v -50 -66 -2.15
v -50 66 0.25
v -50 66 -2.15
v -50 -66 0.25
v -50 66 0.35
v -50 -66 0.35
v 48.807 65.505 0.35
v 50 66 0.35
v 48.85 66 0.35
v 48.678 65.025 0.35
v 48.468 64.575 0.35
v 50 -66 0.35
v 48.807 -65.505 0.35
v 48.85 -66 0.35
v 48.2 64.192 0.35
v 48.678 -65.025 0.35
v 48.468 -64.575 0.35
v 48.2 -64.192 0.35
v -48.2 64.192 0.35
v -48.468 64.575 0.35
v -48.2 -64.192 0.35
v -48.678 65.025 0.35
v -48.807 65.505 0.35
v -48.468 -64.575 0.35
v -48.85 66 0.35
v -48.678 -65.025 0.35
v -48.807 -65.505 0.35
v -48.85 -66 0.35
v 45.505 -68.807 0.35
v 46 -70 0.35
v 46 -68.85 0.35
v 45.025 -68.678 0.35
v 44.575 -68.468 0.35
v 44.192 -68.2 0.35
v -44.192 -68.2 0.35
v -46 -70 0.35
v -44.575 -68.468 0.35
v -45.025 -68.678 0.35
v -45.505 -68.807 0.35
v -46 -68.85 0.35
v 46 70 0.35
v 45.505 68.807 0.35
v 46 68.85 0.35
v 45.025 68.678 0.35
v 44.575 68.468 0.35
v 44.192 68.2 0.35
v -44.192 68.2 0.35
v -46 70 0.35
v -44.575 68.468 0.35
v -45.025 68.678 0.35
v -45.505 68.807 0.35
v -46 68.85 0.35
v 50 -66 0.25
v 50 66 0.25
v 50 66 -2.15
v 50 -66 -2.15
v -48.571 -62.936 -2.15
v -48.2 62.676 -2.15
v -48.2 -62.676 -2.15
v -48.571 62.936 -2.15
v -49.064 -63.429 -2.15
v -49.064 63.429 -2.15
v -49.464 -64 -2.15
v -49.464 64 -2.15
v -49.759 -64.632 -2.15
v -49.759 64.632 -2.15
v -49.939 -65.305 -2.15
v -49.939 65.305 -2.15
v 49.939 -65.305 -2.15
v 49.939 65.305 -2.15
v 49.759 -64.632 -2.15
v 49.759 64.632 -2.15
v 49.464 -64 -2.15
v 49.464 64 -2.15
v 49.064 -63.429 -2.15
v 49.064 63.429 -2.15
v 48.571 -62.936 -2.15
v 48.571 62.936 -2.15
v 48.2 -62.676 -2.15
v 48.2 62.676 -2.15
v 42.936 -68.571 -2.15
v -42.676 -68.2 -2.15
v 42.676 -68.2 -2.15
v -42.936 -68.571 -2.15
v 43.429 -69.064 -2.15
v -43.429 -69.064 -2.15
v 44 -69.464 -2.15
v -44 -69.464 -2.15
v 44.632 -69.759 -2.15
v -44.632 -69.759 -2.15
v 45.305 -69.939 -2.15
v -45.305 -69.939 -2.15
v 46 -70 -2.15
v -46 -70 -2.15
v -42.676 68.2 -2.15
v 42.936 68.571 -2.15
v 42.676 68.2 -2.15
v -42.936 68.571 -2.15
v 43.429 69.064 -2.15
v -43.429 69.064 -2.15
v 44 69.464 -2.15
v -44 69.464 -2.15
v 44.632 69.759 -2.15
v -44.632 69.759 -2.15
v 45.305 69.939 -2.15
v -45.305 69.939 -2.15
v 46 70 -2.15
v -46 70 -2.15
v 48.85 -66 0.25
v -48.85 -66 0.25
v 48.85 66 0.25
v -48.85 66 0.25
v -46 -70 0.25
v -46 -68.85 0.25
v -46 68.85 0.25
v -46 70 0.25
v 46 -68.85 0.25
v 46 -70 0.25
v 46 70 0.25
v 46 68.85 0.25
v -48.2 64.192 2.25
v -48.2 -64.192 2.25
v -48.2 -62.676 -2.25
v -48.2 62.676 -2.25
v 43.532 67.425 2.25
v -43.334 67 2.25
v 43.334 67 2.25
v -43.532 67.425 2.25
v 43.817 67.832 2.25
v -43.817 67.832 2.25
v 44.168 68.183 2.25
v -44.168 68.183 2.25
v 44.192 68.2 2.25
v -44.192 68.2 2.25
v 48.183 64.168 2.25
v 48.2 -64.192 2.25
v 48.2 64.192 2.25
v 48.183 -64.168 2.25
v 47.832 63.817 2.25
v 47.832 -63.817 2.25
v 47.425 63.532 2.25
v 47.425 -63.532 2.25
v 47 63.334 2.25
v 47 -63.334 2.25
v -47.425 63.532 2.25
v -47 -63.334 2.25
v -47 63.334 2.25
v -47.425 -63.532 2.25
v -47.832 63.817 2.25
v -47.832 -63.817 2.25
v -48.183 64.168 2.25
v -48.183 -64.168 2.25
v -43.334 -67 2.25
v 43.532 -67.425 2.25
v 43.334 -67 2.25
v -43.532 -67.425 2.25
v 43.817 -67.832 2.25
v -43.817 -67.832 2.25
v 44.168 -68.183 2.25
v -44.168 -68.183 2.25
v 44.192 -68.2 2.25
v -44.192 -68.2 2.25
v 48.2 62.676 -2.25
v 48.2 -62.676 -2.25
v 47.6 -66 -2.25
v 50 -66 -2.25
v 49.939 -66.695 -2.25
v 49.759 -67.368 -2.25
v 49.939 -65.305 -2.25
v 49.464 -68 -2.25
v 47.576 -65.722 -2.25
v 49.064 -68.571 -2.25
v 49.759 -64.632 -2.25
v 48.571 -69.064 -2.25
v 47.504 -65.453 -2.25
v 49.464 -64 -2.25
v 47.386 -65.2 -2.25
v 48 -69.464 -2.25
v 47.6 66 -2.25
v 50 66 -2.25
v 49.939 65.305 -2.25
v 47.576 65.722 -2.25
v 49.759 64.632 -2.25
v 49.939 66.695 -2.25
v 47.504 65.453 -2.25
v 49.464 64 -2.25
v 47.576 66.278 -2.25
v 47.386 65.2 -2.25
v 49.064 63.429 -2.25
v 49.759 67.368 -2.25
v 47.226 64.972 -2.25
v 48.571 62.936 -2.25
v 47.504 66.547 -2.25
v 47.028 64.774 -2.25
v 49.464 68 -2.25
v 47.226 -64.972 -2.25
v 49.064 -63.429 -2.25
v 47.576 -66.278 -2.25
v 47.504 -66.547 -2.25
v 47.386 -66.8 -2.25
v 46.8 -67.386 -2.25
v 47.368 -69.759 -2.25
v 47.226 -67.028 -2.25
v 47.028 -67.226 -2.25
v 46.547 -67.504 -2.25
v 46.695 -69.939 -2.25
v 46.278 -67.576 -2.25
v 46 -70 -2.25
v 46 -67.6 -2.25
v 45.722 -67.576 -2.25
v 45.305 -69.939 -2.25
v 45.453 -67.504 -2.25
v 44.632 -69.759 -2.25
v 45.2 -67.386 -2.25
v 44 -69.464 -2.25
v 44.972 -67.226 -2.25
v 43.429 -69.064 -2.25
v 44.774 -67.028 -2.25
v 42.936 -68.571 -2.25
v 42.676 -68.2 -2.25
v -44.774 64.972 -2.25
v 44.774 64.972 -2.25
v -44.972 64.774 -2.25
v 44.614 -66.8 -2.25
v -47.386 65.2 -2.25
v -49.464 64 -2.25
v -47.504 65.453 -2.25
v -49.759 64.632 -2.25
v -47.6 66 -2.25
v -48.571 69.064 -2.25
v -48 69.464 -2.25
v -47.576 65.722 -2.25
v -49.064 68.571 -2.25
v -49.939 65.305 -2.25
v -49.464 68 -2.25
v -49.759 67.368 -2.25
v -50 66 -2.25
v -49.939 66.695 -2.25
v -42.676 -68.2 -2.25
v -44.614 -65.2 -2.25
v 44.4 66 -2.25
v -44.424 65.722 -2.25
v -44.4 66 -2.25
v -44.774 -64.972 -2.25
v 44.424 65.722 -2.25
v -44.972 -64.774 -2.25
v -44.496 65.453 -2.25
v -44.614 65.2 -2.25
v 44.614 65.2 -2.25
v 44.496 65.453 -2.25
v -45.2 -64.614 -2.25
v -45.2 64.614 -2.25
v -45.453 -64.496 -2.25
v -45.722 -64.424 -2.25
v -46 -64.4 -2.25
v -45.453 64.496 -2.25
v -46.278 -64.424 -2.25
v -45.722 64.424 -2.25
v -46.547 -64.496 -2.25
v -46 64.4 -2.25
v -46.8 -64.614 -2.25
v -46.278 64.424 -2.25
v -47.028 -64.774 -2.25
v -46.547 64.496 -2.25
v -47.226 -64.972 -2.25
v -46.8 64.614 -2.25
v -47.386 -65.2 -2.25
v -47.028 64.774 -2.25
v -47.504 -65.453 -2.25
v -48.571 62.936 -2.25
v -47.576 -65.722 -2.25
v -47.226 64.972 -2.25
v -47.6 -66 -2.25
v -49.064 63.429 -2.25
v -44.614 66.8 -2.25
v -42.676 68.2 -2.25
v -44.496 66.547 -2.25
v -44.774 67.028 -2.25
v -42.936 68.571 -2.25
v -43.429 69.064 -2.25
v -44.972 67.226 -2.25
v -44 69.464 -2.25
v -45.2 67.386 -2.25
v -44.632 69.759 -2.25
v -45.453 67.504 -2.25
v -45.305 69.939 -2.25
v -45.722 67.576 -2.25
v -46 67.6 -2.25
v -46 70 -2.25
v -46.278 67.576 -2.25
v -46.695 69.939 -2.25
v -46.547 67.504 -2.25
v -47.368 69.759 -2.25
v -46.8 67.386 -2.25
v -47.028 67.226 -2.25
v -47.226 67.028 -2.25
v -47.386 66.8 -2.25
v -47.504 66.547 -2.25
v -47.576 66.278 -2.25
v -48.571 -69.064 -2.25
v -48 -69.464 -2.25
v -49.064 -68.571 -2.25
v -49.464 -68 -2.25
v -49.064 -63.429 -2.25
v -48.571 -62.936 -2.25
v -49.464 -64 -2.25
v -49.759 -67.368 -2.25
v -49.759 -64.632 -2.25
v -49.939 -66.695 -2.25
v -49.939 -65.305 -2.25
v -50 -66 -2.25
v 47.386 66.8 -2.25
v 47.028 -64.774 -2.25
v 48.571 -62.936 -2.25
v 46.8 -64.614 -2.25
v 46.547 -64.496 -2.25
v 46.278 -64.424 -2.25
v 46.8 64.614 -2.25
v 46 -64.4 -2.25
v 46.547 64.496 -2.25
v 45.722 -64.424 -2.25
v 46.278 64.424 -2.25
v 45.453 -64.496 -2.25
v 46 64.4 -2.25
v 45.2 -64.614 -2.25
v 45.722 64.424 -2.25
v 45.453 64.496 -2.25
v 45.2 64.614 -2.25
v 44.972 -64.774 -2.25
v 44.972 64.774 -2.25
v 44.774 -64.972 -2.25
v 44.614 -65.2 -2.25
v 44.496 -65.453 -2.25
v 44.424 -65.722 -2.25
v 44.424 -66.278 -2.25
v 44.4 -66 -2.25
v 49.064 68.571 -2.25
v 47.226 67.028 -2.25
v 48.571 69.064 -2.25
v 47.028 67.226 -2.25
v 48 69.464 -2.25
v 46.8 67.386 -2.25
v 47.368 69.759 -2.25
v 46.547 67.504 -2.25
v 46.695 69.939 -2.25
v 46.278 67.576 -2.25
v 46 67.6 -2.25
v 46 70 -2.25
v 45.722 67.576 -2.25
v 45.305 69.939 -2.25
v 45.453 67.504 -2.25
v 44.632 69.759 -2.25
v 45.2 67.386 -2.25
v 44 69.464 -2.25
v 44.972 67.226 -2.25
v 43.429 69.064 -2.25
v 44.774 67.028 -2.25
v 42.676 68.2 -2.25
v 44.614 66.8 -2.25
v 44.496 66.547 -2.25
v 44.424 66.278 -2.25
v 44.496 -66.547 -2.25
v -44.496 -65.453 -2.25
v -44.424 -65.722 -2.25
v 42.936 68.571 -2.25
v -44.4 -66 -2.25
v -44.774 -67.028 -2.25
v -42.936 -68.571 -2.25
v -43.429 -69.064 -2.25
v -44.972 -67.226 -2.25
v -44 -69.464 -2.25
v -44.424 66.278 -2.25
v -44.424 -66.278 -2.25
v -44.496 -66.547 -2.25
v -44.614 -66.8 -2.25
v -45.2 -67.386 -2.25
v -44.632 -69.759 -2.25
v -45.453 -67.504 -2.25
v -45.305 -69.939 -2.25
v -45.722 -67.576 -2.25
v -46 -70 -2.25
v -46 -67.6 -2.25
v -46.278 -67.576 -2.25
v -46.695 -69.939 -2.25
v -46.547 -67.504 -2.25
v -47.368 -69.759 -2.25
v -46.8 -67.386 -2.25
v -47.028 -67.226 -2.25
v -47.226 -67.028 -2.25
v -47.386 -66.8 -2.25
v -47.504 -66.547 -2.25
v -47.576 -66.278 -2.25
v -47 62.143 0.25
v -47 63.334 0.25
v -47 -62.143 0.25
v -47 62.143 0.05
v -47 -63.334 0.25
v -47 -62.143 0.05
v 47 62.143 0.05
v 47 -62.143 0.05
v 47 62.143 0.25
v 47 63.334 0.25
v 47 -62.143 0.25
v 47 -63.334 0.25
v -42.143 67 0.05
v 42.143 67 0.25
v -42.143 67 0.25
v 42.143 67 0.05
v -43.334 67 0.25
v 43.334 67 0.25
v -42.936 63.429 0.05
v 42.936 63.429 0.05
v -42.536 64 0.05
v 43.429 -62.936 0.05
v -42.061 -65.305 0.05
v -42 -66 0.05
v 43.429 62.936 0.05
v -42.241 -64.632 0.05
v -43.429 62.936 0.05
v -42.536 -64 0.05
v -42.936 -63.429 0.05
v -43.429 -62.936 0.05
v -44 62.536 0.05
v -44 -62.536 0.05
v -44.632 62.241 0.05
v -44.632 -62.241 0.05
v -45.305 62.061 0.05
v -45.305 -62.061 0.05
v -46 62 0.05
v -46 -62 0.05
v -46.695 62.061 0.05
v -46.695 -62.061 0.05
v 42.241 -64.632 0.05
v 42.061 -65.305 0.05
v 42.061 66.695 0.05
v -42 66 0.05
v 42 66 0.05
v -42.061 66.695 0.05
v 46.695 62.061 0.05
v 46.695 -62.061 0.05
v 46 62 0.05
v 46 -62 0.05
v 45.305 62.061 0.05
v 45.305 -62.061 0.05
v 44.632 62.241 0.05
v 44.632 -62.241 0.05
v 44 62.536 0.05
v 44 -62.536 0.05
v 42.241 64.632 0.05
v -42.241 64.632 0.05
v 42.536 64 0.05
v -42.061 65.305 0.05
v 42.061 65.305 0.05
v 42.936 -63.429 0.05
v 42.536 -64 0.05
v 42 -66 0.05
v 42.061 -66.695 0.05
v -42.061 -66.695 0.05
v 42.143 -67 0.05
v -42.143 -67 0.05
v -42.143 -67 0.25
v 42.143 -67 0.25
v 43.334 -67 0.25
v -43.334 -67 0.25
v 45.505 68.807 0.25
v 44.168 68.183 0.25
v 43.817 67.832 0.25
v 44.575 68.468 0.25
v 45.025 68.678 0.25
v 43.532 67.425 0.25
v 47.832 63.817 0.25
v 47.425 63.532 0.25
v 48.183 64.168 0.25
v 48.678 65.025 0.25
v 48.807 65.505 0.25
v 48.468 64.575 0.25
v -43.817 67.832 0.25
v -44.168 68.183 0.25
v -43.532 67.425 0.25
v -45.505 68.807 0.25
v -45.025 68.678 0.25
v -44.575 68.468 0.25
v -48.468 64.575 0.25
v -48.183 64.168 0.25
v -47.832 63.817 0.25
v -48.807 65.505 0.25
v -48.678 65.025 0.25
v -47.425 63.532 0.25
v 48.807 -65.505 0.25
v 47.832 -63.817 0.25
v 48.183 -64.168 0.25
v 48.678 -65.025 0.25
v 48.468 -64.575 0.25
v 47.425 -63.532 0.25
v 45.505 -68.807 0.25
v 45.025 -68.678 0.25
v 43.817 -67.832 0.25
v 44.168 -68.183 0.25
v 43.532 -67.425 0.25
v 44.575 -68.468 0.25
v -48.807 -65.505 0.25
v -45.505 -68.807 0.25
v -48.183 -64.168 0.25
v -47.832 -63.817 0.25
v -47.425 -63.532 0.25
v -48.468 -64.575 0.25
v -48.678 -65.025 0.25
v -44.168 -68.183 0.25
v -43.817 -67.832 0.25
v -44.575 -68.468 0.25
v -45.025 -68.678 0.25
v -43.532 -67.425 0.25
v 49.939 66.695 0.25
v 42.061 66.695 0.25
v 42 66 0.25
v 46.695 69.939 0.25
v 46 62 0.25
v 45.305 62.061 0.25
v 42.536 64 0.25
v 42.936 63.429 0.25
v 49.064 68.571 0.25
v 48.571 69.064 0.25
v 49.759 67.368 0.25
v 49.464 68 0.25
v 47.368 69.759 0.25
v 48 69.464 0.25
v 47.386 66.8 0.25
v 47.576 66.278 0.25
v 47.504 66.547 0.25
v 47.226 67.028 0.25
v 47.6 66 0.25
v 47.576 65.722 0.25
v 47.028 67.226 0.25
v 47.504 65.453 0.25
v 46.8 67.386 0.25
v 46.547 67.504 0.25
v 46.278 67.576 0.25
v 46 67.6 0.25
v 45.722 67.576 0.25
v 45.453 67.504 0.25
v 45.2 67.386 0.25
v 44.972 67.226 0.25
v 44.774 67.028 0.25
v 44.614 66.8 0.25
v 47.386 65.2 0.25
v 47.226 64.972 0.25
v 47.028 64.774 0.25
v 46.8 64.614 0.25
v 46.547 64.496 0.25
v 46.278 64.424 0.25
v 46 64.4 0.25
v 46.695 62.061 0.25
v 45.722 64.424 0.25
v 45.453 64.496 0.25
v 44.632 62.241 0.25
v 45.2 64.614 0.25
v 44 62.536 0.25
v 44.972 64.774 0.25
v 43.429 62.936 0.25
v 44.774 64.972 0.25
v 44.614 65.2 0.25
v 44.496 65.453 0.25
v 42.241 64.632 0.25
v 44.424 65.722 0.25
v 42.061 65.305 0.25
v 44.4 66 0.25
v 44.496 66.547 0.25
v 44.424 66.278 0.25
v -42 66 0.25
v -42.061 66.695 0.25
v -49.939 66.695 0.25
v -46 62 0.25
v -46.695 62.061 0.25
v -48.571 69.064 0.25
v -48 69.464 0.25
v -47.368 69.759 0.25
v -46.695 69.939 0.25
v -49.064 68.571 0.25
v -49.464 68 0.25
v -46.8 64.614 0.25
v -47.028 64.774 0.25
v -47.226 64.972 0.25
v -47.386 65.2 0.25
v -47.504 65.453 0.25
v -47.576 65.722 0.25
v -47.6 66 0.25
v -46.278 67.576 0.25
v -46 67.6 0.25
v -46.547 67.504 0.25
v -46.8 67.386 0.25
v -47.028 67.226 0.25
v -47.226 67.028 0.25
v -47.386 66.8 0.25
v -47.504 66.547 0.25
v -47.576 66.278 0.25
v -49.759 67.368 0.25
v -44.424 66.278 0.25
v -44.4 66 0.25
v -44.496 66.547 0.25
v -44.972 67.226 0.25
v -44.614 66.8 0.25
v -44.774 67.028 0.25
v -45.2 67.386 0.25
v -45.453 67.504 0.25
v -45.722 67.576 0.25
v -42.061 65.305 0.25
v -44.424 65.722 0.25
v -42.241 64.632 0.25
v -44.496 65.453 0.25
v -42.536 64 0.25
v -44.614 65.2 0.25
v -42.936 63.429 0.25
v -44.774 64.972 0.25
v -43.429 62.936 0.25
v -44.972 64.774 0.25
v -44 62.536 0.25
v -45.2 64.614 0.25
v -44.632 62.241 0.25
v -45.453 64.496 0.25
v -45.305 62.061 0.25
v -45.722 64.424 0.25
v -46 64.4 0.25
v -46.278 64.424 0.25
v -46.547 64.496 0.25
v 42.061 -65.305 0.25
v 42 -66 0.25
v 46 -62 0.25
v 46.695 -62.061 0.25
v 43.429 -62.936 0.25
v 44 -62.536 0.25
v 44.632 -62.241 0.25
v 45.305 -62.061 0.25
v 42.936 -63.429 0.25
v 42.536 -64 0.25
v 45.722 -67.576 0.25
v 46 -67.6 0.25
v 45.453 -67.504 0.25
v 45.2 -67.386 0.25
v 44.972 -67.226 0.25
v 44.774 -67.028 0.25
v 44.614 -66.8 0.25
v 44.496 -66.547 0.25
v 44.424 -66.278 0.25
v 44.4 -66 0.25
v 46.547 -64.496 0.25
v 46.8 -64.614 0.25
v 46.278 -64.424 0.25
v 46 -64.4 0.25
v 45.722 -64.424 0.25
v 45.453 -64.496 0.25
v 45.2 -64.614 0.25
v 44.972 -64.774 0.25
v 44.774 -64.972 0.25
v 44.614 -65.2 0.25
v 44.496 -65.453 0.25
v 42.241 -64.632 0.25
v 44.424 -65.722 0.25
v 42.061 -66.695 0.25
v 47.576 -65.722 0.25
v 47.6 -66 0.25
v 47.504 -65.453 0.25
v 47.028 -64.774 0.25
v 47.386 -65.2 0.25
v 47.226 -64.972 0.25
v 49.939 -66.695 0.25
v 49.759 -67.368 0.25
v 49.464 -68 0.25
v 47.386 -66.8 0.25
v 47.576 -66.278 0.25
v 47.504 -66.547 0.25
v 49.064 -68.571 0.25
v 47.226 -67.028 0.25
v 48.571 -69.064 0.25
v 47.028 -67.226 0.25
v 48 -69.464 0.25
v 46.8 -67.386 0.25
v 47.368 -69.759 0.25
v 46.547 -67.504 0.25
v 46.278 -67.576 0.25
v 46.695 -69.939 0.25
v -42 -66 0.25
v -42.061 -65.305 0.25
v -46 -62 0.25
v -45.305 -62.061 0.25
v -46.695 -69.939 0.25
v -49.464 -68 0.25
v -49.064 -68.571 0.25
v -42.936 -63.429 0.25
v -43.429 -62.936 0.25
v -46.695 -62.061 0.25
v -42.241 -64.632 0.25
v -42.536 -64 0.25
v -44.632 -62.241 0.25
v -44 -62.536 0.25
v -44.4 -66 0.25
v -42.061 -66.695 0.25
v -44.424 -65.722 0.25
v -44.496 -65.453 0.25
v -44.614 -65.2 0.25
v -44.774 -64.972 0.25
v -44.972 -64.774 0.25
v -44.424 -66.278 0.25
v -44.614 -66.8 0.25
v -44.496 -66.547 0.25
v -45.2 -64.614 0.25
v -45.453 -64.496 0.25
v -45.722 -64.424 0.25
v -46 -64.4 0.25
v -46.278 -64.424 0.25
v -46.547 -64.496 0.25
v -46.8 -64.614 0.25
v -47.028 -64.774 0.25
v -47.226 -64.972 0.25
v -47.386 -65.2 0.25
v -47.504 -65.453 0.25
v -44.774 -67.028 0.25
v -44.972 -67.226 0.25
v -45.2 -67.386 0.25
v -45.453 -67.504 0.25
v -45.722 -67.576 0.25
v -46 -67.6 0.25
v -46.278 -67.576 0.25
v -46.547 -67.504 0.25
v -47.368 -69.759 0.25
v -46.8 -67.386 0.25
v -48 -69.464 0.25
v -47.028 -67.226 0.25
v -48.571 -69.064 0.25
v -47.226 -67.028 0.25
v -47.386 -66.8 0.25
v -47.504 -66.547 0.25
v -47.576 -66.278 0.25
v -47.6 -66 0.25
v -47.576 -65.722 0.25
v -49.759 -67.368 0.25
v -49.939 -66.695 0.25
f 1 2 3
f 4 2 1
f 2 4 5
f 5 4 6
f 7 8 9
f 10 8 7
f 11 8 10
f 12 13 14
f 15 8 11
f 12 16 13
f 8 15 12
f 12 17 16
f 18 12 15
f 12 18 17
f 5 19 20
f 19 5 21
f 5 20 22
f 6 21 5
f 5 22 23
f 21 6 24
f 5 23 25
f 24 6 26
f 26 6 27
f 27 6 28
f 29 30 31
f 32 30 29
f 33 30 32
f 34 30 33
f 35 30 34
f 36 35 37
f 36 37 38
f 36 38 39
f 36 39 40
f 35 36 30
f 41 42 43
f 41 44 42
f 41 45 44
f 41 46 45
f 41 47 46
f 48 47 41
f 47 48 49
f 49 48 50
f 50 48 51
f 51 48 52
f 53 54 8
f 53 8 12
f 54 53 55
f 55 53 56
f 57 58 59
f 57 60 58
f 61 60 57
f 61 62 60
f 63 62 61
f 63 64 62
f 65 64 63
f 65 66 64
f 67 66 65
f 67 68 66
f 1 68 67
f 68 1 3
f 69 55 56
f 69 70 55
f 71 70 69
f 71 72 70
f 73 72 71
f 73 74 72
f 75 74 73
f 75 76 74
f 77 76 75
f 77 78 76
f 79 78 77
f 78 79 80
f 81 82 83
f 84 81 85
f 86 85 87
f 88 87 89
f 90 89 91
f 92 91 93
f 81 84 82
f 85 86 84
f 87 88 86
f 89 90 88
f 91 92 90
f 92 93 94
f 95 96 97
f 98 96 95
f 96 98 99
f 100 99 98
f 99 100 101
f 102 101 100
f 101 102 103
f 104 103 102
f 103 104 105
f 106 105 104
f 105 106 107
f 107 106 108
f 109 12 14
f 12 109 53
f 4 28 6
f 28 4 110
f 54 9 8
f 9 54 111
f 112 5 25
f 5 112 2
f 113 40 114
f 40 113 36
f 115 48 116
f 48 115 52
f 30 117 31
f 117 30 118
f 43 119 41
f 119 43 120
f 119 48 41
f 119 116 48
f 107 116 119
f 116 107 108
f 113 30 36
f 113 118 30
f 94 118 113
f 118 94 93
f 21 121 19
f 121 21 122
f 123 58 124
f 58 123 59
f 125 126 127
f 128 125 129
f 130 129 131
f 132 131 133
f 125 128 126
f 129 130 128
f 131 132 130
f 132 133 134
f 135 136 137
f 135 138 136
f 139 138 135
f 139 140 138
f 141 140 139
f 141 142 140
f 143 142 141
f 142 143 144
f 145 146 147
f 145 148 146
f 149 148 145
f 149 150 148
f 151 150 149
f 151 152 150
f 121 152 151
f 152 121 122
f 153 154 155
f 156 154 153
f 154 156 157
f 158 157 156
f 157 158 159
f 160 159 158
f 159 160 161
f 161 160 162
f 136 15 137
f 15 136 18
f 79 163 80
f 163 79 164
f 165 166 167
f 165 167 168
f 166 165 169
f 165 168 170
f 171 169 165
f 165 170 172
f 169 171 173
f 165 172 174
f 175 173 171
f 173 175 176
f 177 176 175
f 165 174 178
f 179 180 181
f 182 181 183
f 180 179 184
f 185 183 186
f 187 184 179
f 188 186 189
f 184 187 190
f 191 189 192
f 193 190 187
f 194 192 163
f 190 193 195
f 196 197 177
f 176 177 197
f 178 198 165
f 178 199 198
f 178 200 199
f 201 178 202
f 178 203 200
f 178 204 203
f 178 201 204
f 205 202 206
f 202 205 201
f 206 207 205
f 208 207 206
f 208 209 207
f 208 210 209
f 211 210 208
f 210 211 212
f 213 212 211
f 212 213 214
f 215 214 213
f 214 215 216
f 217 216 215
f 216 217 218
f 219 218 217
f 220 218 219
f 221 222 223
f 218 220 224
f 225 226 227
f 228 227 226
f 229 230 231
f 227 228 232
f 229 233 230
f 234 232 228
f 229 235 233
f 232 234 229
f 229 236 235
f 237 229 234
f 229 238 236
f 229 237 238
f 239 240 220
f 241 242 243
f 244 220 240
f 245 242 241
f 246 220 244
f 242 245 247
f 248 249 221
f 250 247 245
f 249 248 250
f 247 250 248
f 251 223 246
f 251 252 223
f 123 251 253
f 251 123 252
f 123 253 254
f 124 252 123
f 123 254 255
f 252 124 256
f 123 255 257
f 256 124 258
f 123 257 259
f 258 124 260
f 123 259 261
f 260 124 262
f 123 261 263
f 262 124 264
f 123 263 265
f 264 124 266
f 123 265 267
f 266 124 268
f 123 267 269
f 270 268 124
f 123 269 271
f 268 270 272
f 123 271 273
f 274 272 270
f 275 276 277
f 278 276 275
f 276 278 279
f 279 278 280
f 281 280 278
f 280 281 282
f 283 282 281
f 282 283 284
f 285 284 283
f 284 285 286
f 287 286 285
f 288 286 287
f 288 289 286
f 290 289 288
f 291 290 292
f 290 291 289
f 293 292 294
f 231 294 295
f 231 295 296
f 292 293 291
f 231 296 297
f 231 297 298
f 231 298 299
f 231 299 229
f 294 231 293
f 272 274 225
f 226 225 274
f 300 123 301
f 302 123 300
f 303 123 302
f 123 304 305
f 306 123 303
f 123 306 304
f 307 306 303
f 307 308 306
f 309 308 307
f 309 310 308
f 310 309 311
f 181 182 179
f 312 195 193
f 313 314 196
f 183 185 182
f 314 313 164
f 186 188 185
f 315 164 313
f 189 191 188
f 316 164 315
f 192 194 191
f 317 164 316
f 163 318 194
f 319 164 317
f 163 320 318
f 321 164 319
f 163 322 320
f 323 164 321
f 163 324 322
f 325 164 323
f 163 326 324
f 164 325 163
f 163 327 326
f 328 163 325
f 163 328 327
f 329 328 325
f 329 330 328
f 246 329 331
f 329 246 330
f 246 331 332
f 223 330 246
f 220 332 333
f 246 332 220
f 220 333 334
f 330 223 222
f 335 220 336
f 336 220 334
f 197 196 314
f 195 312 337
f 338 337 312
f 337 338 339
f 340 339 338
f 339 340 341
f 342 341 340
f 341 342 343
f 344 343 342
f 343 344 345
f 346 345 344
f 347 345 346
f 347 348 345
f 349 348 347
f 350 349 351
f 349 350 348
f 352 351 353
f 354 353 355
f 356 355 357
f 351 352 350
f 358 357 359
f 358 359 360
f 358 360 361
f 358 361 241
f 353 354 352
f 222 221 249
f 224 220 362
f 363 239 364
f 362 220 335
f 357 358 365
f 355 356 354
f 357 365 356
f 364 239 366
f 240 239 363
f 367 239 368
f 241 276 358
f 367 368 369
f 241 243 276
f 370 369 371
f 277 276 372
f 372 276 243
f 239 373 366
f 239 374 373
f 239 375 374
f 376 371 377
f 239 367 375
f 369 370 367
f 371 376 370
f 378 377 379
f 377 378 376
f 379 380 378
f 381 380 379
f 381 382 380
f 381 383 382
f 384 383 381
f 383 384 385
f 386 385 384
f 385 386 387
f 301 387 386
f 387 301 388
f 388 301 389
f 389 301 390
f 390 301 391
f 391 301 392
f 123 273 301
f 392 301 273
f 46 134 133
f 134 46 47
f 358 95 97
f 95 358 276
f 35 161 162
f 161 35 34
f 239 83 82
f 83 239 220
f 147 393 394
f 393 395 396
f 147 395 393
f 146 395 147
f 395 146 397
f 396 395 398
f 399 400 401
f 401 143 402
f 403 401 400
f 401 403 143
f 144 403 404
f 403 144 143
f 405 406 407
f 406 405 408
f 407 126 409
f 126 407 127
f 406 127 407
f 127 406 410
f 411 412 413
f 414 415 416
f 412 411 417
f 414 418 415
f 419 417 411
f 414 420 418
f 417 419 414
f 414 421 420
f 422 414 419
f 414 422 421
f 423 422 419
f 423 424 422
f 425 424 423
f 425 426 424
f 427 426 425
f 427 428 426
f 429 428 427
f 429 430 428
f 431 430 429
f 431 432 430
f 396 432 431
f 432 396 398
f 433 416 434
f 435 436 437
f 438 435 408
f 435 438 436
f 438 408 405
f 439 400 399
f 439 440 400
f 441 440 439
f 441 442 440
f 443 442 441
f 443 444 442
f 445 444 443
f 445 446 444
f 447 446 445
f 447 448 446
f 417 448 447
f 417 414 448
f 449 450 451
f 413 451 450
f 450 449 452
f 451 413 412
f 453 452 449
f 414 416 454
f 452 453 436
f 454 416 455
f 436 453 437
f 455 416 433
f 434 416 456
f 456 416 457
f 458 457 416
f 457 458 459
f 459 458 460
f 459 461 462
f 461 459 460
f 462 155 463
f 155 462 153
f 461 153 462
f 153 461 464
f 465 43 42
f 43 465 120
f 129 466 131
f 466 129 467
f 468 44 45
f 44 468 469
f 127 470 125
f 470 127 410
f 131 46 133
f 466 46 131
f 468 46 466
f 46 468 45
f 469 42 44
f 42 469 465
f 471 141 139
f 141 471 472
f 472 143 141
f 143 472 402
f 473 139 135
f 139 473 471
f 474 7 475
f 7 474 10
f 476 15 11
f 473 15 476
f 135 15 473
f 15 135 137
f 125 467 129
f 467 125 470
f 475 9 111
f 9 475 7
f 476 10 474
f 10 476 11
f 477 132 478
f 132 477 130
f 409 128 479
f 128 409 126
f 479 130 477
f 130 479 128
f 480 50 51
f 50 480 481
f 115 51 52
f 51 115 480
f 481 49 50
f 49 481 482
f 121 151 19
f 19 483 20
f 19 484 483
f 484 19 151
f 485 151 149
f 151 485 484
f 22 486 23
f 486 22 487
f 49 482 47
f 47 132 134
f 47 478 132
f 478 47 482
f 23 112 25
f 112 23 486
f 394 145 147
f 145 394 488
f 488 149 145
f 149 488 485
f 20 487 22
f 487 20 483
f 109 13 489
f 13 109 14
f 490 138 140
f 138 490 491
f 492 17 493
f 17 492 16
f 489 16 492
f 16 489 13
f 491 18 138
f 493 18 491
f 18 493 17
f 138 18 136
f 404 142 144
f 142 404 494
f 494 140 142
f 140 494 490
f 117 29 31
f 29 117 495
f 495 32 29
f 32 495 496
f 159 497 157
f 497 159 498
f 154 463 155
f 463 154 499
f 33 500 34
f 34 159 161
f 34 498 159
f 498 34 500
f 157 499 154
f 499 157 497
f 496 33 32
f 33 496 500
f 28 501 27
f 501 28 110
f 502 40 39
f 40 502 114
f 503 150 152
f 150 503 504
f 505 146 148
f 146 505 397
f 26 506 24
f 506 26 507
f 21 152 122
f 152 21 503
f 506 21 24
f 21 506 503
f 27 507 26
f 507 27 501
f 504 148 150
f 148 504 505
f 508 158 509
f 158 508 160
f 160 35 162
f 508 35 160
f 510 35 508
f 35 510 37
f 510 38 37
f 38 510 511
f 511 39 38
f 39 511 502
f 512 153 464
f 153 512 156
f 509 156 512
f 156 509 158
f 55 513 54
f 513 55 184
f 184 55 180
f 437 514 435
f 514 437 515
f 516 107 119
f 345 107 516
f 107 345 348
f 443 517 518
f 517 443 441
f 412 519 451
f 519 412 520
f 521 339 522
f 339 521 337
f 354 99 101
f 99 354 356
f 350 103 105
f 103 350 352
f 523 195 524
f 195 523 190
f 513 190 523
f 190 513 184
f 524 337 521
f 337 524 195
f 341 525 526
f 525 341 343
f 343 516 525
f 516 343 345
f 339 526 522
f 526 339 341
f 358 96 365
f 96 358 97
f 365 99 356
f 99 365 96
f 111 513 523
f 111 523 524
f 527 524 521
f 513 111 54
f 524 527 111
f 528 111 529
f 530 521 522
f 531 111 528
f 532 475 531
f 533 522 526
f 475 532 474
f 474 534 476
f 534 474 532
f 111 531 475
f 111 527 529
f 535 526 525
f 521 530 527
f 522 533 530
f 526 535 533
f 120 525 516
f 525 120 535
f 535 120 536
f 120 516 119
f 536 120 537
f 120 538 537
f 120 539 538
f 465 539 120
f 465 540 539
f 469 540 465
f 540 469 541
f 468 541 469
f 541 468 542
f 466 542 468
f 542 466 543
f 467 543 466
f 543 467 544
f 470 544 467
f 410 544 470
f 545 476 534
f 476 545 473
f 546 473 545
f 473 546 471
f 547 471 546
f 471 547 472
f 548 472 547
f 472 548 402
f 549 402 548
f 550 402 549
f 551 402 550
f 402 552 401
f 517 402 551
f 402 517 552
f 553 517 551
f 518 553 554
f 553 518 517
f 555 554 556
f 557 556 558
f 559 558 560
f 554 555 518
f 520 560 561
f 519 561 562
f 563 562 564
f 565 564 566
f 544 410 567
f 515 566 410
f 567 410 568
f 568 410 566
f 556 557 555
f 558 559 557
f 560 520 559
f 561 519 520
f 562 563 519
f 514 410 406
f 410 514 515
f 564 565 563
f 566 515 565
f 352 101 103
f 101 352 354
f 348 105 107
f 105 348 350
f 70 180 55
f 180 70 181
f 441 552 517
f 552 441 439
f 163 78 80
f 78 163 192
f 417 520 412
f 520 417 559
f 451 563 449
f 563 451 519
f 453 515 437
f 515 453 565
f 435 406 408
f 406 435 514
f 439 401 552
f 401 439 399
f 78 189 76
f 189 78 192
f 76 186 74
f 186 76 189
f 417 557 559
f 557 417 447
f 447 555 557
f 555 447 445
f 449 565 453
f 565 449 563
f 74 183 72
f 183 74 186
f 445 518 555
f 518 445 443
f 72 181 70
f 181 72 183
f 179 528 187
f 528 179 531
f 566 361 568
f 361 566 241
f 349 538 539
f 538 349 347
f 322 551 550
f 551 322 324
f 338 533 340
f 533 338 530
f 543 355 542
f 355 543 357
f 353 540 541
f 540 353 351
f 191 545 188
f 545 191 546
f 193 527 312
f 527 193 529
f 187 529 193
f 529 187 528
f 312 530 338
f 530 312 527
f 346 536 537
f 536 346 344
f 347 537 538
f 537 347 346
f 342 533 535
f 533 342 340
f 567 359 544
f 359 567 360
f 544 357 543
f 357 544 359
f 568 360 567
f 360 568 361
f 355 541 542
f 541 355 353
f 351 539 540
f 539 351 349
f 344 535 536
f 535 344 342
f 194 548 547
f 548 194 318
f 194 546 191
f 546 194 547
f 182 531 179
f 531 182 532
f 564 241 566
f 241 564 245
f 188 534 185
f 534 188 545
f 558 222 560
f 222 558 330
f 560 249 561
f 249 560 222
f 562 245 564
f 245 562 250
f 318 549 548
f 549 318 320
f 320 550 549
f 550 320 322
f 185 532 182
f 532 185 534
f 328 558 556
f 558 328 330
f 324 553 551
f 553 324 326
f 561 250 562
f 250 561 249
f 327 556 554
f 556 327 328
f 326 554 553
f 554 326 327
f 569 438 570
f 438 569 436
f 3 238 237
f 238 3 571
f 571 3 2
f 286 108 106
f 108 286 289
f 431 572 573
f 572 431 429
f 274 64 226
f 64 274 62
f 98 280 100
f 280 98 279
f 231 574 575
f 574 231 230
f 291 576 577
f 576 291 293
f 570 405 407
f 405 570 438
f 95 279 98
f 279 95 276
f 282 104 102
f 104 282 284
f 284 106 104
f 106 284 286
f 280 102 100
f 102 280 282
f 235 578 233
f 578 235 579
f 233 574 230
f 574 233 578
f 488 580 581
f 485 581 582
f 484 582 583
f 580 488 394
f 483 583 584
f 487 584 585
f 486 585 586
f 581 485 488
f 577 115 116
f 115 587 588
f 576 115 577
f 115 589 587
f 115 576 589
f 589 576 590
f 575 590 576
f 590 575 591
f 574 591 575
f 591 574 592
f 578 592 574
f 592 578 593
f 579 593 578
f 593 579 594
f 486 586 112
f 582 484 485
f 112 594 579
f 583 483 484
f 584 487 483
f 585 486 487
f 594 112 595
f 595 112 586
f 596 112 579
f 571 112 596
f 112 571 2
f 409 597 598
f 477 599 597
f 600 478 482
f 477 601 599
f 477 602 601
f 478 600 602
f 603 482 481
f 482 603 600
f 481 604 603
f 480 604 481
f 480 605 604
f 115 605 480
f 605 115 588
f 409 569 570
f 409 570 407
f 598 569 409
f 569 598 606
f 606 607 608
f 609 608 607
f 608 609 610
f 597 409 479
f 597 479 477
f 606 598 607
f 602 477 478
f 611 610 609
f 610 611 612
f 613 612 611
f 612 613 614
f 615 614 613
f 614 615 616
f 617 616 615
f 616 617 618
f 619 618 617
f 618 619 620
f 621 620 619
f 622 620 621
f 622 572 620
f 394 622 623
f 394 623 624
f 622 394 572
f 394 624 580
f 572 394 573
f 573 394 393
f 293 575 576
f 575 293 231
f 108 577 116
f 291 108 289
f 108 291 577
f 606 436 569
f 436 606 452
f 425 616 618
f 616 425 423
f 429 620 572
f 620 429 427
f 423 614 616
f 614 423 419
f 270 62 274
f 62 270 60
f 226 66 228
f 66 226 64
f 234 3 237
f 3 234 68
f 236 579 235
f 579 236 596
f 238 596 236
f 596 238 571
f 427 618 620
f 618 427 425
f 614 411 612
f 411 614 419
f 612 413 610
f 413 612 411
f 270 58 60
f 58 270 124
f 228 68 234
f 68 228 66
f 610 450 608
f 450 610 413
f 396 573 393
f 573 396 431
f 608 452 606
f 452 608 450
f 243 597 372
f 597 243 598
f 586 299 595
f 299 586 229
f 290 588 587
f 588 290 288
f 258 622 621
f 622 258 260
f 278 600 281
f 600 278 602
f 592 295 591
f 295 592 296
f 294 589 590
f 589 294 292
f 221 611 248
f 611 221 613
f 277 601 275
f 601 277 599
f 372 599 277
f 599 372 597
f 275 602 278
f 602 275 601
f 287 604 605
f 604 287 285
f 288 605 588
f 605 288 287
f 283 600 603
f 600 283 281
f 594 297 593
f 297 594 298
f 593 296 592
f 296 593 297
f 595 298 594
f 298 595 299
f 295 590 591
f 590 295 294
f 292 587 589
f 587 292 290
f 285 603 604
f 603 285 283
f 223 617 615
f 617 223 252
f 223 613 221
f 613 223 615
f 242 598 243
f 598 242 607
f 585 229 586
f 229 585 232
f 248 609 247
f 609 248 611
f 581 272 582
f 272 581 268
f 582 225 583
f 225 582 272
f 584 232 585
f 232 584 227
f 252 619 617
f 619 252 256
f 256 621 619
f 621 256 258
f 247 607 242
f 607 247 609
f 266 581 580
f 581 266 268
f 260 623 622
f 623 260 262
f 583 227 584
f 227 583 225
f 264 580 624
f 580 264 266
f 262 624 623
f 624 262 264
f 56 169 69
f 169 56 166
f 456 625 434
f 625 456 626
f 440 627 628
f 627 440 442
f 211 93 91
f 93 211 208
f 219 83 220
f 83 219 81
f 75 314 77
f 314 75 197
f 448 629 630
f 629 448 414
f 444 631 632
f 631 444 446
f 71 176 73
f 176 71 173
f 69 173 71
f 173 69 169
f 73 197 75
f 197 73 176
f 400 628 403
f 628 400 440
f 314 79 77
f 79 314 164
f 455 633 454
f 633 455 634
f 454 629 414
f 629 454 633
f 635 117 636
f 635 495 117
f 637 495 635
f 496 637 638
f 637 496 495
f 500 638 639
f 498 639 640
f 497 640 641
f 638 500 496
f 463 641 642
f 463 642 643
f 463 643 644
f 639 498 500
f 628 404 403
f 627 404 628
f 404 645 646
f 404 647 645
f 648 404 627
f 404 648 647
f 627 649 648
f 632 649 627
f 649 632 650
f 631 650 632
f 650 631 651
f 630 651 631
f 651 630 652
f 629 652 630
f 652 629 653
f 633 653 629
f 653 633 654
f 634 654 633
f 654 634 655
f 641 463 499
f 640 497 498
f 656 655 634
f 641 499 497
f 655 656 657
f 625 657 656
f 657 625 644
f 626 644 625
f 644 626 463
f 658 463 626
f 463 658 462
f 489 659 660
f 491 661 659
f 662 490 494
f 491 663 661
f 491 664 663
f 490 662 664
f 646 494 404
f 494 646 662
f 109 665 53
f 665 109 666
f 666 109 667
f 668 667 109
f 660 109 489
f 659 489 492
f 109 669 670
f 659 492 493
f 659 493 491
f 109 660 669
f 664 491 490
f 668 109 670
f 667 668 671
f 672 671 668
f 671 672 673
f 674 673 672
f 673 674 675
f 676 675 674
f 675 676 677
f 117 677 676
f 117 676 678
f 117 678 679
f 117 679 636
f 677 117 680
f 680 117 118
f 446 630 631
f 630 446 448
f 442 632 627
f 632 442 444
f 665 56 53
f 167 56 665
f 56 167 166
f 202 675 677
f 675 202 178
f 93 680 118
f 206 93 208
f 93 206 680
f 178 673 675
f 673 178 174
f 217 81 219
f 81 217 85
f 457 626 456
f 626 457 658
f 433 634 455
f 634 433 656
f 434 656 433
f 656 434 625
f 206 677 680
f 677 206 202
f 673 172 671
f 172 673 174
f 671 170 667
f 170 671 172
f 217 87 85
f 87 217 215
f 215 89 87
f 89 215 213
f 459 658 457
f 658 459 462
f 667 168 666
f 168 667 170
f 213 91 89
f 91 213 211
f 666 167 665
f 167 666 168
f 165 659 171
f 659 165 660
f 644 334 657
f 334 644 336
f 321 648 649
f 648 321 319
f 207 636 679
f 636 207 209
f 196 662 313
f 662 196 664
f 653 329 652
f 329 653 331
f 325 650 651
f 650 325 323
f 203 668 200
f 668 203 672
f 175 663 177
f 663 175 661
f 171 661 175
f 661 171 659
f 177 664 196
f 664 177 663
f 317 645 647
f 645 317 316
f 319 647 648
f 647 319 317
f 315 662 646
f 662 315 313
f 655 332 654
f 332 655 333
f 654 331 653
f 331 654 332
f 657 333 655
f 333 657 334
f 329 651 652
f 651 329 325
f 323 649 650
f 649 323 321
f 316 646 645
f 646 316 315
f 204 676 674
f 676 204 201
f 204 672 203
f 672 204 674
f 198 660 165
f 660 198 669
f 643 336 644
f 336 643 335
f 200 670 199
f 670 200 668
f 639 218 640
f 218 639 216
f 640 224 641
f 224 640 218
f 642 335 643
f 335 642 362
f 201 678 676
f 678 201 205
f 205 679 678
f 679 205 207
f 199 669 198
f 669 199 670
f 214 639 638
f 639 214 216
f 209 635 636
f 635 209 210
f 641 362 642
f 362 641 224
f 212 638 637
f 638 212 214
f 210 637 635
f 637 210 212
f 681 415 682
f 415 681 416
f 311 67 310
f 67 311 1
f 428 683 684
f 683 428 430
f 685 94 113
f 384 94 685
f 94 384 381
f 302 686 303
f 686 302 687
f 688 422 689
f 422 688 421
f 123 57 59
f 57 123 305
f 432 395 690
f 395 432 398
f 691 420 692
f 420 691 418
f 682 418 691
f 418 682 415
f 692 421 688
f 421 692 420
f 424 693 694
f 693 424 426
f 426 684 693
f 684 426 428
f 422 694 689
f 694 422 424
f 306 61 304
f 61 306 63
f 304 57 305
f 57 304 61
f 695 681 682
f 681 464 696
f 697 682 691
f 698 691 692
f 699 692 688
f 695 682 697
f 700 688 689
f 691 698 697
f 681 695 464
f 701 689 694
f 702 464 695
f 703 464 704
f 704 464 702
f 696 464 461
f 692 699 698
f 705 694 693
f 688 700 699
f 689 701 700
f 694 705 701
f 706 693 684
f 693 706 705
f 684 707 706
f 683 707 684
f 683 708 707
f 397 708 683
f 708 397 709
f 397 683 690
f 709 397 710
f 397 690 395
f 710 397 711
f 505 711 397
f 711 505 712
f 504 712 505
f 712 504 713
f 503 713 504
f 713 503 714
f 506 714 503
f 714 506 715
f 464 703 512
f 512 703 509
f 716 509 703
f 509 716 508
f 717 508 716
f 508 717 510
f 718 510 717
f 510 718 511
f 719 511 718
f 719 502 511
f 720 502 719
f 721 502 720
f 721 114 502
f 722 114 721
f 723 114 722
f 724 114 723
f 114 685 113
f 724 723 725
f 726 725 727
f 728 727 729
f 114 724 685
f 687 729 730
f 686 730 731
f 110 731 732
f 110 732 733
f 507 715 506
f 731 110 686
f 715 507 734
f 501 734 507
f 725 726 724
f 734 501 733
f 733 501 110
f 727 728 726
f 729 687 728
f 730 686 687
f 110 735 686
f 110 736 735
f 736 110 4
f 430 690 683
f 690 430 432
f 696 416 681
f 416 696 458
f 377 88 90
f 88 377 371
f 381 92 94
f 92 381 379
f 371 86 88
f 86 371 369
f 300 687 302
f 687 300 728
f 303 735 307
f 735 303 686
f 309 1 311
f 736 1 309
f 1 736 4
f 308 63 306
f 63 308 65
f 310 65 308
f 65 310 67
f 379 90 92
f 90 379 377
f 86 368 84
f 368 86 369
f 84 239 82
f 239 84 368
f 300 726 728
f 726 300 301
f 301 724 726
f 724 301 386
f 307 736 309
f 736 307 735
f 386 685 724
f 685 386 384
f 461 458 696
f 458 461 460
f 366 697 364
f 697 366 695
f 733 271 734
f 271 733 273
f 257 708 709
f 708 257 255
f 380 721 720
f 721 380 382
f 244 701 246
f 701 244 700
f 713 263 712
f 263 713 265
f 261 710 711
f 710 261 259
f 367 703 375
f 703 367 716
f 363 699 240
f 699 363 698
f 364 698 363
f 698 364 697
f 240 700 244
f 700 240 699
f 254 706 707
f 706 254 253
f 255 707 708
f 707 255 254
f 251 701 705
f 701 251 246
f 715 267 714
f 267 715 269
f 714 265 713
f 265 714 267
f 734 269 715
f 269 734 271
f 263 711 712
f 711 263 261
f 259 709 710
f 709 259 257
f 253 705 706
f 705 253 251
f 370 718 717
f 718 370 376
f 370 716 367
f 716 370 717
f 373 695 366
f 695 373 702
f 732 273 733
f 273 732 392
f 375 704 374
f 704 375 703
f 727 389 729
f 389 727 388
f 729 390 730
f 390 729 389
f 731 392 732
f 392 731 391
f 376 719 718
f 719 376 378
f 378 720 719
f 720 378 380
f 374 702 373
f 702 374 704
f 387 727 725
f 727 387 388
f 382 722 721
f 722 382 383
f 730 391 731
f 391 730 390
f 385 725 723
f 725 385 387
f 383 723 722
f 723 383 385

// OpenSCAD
// Definition size of housing
// **************************

       // Those settings have to be identical to the box !!!
width_x      = 100;          // Width of the cover (outer dimension) 
depth_y      = 140;           // depth of the cover (outer dimension)
wall         = 1.8;          // Side wall thickness of the cover
flange       = 1.2;            // fitting flange
flangeheight = 2;            // fitting flange
cornerradius = 4.0;          // Radius of the corners
                             //   This value also defines the posts for stability and
                             //   for the screw holes!

       // Those settings are more or less independent from the cover
height_z     = 4.5;          // Heigth of the cover. Total height is this value plus
                             //   the height of the box
plate        = 1.8;          // Thickness of top plate. Consider this value for the
                             //   elements which need to be mounted as well as for 
                             //   mechanical stability

       //Definition size of screws (Example value for M3 inner hex screw)
screwholediameter  = 3.2;    // Size of screw hole
screwheaddiameter  = 5.7;    // Size for screw head (diameter)
screwheadheigth    = 0;    // Heigth of the screw head
                             //   Screw head sits on top of cover if this value is set to zero
                             //   Consider material under screw head for mechanical strength 
                             //   when plunging screw 

//Definition of circle angular resolution
resol        = 36;           // Identical to housing !!!

pillarheight=4;
pillardia=5;
holedia=2;

difference () {

   // Construction Main Cover
   union () {
      difference () {
         // Construction of cover plate
         union () {
         translate ( [0,0, -plate / 2] ){ 
            cube ( [width_x, depth_y - (2* cornerradius), height_z-flangeheight], center = true );
            cube ( [width_x - (2* cornerradius), depth_y, height_z-flangeheight], center = true );
         };
         //flanges
            cube ( [width_x - wall*2, depth_y - (2* cornerradius), height_z], center = true );
            cube ( [width_x - (2* cornerradius) , depth_y - wall*2, height_z], center = true );
         };

         // Remove inner material
         translate ( [0,0, plate / 2+1] ){
            cube ( [width_x - (2* wall) - (2* flange), depth_y- (2* wall)- (2* flange), height_z - plate+1], center = true );
         };
         // Remove Screw hole in the 1st quadrant (required if screw head is thinner than plate!)
         translate ( [(width_x / 2) - cornerradius, (depth_y / 2) - cornerradius, 0 ] ) {
            cylinder ( h = height_z, r = screwheaddiameter / 2, center = true, $fn = resol );
         };
         // Remove Screw hole in the 2nd quadrant (required if screw head is thinner than plate!)
         translate ( [-(width_x / 2) + cornerradius, (depth_y / 2) - cornerradius, 0 ] ) {
            cylinder ( h = height_z, r = screwheaddiameter / 2, center = true, $fn = resol );
         };
         // Remove Screw hole in the 4th quadrant (required if screw head is thinner than plate!)
         translate ( [(width_x / 2) - cornerradius, -(depth_y / 2) + cornerradius, 0 ] ) {
            cylinder ( h = height_z, r = screwheaddiameter / 2, center = true, $fn = resol );
         };
         // Remove Screw hole in the 3rd quadrant (required if screw head is thinner than plate!)
         translate ( [-(width_x / 2) + cornerradius, -(depth_y / 2) + cornerradius, 0 ] ) {
            cylinder ( h = height_z, r = screwheaddiameter / 2, center = true, $fn = resol );
         };
      };

      // Construction of corner posts, screw holes and screw head holes
      //   in 1st quadrant
      translate ( [(width_x / 2) - cornerradius, (depth_y / 2) - cornerradius, -flangeheight/2 ] ) {
         difference () {
            cylinder (h=height_z-flangeheight, r=cornerradius, center = true, $fn = resol);
            cylinder (h = height_z, r = screwholediameter / 2, center = true, $fn = resol);
            translate ( [ 0, 0, - ( height_z / 2 ) + ( screwheadheigth / 2 ) ] ) {
               cylinder ( h = screwheadheigth, r = screwheaddiameter / 2, center = true, $fn = resol );
            };
            translate ( [ 0, 0, flangeheight*3 - plate*2 ] ) {
               cylinder ( h = flangeheight, r = cornerradius+1, center = true, $fn = resol );
            };
         };
      };
      //   in 2nd quadrant
      translate ( [-(width_x / 2) + cornerradius, (depth_y / 2) - cornerradius, -flangeheight/2] ) {
         difference () {
            cylinder (h=height_z-flangeheight, r=cornerradius, center = true, $fn = resol);
            cylinder (h = height_z, r = screwholediameter / 2, center = true, $fn = resol);
            translate ( [ 0, 0, - ( height_z / 2 ) + ( screwheadheigth / 2 ) ] ) {
               cylinder ( h = screwheadheigth, r = screwheaddiameter / 2, center = true, $fn = resol );
            };
            translate ( [ 0, 0, flangeheight*3 - plate*2 ] ) {
               cylinder ( h = flangeheight, r = cornerradius+1, center = true, $fn = resol );
            };
            
         };
      };
      //   in 4th quadrant
      translate ( [(width_x / 2) - cornerradius, -(depth_y / 2) + cornerradius, -flangeheight/2] ) {
         difference () {
            cylinder (h=height_z-flangeheight, r=cornerradius, center = true, $fn = resol);
            cylinder (h = height_z, r = screwholediameter / 2, center = true, $fn = resol);
            translate ( [ 0, 0, - ( height_z / 2 ) + ( screwheadheigth / 2 ) ] ) {
               cylinder ( h = screwheadheigth, r = screwheaddiameter / 2, center = true, $fn = resol );
            };
            translate ( [ 0, 0, flangeheight*3 - plate*2 ] ) {
               cylinder ( h = flangeheight, r = cornerradius+1, center = true, $fn = resol );
            };

         };
      };
      //   in 3rd quadrant
      translate ( [-(width_x / 2) + cornerradius, -(depth_y / 2) + cornerradius, -flangeheight/2] ) {
         difference () {
            cylinder (h=height_z-flangeheight, r=cornerradius, center = true, $fn = resol);
            cylinder (h = height_z, r = screwholediameter / 2, center = true, $fn = resol);
            translate ( [ 0, 0, - ( height_z / 2 ) + ( screwheadheigth / 2 ) ] ) {
               cylinder ( h = screwheadheigth, r = screwheaddiameter / 2, center = true, $fn = resol );
            };
            translate ( [ 0, 0, flangeheight*3 - plate*2 ] ) {
               cylinder ( h = flangeheight, r = cornerradius+1, center = true, $fn = resol );
            };

         };
      };
      
      

   // Space for Breakouts, holes, ...
  };

};

module roundedcube(size = [1, 1, 1], center = false, radius = 0.5, apply_to = "all") {
	// If single value, convert to [x, y, z] vector
	size = (size[0] == undef) ? [size, size, size] : size;

	translate_min = radius;
	translate_xmax = size[0] - radius;
	translate_ymax = size[1] - radius;
	translate_zmax = size[2] - radius;

	diameter = radius * 2;

	obj_translate = (center == false) ?
		[0, 0, 0] : [
			-(size[0] / 2),
			-(size[1] / 2),
			-(size[2] / 2)
		];

	translate(v = obj_translate) {
		hull() {
			for (translate_x = [translate_min, translate_xmax]) {
				x_at = (translate_x == translate_min) ? "min" : "max";
				for (translate_y = [translate_min, translate_ymax]) {
					y_at = (translate_y == translate_min) ? "min" : "max";
					for (translate_z = [translate_min, translate_zmax]) {
						z_at = (translate_z == translate_min) ? "min" : "max";

						translate(v = [translate_x, translate_y, translate_z])
						if (
							(apply_to == "all") ||
							(apply_to == "xmin" && x_at == "min") || (apply_to == "xmax" && x_at == "max") ||
							(apply_to == "ymin" && y_at == "min") || (apply_to == "ymax" && y_at == "max") ||
							(apply_to == "zmin" && z_at == "min") || (apply_to == "zmax" && z_at == "max")
						) {
							sphere(r = radius);
						} else {
							rotate = 
								(apply_to == "xmin" || apply_to == "xmax" || apply_to == "x") ? [0, 90, 0] : (
								(apply_to == "ymin" || apply_to == "ymax" || apply_to == "y") ? [90, 90, 0] :
								[0, 0, 0]
							);
							rotate(a = rotate)
							cylinder(h = diameter, r = radius, center = true);
						}
					}
				}
			}
		}
	}
}
